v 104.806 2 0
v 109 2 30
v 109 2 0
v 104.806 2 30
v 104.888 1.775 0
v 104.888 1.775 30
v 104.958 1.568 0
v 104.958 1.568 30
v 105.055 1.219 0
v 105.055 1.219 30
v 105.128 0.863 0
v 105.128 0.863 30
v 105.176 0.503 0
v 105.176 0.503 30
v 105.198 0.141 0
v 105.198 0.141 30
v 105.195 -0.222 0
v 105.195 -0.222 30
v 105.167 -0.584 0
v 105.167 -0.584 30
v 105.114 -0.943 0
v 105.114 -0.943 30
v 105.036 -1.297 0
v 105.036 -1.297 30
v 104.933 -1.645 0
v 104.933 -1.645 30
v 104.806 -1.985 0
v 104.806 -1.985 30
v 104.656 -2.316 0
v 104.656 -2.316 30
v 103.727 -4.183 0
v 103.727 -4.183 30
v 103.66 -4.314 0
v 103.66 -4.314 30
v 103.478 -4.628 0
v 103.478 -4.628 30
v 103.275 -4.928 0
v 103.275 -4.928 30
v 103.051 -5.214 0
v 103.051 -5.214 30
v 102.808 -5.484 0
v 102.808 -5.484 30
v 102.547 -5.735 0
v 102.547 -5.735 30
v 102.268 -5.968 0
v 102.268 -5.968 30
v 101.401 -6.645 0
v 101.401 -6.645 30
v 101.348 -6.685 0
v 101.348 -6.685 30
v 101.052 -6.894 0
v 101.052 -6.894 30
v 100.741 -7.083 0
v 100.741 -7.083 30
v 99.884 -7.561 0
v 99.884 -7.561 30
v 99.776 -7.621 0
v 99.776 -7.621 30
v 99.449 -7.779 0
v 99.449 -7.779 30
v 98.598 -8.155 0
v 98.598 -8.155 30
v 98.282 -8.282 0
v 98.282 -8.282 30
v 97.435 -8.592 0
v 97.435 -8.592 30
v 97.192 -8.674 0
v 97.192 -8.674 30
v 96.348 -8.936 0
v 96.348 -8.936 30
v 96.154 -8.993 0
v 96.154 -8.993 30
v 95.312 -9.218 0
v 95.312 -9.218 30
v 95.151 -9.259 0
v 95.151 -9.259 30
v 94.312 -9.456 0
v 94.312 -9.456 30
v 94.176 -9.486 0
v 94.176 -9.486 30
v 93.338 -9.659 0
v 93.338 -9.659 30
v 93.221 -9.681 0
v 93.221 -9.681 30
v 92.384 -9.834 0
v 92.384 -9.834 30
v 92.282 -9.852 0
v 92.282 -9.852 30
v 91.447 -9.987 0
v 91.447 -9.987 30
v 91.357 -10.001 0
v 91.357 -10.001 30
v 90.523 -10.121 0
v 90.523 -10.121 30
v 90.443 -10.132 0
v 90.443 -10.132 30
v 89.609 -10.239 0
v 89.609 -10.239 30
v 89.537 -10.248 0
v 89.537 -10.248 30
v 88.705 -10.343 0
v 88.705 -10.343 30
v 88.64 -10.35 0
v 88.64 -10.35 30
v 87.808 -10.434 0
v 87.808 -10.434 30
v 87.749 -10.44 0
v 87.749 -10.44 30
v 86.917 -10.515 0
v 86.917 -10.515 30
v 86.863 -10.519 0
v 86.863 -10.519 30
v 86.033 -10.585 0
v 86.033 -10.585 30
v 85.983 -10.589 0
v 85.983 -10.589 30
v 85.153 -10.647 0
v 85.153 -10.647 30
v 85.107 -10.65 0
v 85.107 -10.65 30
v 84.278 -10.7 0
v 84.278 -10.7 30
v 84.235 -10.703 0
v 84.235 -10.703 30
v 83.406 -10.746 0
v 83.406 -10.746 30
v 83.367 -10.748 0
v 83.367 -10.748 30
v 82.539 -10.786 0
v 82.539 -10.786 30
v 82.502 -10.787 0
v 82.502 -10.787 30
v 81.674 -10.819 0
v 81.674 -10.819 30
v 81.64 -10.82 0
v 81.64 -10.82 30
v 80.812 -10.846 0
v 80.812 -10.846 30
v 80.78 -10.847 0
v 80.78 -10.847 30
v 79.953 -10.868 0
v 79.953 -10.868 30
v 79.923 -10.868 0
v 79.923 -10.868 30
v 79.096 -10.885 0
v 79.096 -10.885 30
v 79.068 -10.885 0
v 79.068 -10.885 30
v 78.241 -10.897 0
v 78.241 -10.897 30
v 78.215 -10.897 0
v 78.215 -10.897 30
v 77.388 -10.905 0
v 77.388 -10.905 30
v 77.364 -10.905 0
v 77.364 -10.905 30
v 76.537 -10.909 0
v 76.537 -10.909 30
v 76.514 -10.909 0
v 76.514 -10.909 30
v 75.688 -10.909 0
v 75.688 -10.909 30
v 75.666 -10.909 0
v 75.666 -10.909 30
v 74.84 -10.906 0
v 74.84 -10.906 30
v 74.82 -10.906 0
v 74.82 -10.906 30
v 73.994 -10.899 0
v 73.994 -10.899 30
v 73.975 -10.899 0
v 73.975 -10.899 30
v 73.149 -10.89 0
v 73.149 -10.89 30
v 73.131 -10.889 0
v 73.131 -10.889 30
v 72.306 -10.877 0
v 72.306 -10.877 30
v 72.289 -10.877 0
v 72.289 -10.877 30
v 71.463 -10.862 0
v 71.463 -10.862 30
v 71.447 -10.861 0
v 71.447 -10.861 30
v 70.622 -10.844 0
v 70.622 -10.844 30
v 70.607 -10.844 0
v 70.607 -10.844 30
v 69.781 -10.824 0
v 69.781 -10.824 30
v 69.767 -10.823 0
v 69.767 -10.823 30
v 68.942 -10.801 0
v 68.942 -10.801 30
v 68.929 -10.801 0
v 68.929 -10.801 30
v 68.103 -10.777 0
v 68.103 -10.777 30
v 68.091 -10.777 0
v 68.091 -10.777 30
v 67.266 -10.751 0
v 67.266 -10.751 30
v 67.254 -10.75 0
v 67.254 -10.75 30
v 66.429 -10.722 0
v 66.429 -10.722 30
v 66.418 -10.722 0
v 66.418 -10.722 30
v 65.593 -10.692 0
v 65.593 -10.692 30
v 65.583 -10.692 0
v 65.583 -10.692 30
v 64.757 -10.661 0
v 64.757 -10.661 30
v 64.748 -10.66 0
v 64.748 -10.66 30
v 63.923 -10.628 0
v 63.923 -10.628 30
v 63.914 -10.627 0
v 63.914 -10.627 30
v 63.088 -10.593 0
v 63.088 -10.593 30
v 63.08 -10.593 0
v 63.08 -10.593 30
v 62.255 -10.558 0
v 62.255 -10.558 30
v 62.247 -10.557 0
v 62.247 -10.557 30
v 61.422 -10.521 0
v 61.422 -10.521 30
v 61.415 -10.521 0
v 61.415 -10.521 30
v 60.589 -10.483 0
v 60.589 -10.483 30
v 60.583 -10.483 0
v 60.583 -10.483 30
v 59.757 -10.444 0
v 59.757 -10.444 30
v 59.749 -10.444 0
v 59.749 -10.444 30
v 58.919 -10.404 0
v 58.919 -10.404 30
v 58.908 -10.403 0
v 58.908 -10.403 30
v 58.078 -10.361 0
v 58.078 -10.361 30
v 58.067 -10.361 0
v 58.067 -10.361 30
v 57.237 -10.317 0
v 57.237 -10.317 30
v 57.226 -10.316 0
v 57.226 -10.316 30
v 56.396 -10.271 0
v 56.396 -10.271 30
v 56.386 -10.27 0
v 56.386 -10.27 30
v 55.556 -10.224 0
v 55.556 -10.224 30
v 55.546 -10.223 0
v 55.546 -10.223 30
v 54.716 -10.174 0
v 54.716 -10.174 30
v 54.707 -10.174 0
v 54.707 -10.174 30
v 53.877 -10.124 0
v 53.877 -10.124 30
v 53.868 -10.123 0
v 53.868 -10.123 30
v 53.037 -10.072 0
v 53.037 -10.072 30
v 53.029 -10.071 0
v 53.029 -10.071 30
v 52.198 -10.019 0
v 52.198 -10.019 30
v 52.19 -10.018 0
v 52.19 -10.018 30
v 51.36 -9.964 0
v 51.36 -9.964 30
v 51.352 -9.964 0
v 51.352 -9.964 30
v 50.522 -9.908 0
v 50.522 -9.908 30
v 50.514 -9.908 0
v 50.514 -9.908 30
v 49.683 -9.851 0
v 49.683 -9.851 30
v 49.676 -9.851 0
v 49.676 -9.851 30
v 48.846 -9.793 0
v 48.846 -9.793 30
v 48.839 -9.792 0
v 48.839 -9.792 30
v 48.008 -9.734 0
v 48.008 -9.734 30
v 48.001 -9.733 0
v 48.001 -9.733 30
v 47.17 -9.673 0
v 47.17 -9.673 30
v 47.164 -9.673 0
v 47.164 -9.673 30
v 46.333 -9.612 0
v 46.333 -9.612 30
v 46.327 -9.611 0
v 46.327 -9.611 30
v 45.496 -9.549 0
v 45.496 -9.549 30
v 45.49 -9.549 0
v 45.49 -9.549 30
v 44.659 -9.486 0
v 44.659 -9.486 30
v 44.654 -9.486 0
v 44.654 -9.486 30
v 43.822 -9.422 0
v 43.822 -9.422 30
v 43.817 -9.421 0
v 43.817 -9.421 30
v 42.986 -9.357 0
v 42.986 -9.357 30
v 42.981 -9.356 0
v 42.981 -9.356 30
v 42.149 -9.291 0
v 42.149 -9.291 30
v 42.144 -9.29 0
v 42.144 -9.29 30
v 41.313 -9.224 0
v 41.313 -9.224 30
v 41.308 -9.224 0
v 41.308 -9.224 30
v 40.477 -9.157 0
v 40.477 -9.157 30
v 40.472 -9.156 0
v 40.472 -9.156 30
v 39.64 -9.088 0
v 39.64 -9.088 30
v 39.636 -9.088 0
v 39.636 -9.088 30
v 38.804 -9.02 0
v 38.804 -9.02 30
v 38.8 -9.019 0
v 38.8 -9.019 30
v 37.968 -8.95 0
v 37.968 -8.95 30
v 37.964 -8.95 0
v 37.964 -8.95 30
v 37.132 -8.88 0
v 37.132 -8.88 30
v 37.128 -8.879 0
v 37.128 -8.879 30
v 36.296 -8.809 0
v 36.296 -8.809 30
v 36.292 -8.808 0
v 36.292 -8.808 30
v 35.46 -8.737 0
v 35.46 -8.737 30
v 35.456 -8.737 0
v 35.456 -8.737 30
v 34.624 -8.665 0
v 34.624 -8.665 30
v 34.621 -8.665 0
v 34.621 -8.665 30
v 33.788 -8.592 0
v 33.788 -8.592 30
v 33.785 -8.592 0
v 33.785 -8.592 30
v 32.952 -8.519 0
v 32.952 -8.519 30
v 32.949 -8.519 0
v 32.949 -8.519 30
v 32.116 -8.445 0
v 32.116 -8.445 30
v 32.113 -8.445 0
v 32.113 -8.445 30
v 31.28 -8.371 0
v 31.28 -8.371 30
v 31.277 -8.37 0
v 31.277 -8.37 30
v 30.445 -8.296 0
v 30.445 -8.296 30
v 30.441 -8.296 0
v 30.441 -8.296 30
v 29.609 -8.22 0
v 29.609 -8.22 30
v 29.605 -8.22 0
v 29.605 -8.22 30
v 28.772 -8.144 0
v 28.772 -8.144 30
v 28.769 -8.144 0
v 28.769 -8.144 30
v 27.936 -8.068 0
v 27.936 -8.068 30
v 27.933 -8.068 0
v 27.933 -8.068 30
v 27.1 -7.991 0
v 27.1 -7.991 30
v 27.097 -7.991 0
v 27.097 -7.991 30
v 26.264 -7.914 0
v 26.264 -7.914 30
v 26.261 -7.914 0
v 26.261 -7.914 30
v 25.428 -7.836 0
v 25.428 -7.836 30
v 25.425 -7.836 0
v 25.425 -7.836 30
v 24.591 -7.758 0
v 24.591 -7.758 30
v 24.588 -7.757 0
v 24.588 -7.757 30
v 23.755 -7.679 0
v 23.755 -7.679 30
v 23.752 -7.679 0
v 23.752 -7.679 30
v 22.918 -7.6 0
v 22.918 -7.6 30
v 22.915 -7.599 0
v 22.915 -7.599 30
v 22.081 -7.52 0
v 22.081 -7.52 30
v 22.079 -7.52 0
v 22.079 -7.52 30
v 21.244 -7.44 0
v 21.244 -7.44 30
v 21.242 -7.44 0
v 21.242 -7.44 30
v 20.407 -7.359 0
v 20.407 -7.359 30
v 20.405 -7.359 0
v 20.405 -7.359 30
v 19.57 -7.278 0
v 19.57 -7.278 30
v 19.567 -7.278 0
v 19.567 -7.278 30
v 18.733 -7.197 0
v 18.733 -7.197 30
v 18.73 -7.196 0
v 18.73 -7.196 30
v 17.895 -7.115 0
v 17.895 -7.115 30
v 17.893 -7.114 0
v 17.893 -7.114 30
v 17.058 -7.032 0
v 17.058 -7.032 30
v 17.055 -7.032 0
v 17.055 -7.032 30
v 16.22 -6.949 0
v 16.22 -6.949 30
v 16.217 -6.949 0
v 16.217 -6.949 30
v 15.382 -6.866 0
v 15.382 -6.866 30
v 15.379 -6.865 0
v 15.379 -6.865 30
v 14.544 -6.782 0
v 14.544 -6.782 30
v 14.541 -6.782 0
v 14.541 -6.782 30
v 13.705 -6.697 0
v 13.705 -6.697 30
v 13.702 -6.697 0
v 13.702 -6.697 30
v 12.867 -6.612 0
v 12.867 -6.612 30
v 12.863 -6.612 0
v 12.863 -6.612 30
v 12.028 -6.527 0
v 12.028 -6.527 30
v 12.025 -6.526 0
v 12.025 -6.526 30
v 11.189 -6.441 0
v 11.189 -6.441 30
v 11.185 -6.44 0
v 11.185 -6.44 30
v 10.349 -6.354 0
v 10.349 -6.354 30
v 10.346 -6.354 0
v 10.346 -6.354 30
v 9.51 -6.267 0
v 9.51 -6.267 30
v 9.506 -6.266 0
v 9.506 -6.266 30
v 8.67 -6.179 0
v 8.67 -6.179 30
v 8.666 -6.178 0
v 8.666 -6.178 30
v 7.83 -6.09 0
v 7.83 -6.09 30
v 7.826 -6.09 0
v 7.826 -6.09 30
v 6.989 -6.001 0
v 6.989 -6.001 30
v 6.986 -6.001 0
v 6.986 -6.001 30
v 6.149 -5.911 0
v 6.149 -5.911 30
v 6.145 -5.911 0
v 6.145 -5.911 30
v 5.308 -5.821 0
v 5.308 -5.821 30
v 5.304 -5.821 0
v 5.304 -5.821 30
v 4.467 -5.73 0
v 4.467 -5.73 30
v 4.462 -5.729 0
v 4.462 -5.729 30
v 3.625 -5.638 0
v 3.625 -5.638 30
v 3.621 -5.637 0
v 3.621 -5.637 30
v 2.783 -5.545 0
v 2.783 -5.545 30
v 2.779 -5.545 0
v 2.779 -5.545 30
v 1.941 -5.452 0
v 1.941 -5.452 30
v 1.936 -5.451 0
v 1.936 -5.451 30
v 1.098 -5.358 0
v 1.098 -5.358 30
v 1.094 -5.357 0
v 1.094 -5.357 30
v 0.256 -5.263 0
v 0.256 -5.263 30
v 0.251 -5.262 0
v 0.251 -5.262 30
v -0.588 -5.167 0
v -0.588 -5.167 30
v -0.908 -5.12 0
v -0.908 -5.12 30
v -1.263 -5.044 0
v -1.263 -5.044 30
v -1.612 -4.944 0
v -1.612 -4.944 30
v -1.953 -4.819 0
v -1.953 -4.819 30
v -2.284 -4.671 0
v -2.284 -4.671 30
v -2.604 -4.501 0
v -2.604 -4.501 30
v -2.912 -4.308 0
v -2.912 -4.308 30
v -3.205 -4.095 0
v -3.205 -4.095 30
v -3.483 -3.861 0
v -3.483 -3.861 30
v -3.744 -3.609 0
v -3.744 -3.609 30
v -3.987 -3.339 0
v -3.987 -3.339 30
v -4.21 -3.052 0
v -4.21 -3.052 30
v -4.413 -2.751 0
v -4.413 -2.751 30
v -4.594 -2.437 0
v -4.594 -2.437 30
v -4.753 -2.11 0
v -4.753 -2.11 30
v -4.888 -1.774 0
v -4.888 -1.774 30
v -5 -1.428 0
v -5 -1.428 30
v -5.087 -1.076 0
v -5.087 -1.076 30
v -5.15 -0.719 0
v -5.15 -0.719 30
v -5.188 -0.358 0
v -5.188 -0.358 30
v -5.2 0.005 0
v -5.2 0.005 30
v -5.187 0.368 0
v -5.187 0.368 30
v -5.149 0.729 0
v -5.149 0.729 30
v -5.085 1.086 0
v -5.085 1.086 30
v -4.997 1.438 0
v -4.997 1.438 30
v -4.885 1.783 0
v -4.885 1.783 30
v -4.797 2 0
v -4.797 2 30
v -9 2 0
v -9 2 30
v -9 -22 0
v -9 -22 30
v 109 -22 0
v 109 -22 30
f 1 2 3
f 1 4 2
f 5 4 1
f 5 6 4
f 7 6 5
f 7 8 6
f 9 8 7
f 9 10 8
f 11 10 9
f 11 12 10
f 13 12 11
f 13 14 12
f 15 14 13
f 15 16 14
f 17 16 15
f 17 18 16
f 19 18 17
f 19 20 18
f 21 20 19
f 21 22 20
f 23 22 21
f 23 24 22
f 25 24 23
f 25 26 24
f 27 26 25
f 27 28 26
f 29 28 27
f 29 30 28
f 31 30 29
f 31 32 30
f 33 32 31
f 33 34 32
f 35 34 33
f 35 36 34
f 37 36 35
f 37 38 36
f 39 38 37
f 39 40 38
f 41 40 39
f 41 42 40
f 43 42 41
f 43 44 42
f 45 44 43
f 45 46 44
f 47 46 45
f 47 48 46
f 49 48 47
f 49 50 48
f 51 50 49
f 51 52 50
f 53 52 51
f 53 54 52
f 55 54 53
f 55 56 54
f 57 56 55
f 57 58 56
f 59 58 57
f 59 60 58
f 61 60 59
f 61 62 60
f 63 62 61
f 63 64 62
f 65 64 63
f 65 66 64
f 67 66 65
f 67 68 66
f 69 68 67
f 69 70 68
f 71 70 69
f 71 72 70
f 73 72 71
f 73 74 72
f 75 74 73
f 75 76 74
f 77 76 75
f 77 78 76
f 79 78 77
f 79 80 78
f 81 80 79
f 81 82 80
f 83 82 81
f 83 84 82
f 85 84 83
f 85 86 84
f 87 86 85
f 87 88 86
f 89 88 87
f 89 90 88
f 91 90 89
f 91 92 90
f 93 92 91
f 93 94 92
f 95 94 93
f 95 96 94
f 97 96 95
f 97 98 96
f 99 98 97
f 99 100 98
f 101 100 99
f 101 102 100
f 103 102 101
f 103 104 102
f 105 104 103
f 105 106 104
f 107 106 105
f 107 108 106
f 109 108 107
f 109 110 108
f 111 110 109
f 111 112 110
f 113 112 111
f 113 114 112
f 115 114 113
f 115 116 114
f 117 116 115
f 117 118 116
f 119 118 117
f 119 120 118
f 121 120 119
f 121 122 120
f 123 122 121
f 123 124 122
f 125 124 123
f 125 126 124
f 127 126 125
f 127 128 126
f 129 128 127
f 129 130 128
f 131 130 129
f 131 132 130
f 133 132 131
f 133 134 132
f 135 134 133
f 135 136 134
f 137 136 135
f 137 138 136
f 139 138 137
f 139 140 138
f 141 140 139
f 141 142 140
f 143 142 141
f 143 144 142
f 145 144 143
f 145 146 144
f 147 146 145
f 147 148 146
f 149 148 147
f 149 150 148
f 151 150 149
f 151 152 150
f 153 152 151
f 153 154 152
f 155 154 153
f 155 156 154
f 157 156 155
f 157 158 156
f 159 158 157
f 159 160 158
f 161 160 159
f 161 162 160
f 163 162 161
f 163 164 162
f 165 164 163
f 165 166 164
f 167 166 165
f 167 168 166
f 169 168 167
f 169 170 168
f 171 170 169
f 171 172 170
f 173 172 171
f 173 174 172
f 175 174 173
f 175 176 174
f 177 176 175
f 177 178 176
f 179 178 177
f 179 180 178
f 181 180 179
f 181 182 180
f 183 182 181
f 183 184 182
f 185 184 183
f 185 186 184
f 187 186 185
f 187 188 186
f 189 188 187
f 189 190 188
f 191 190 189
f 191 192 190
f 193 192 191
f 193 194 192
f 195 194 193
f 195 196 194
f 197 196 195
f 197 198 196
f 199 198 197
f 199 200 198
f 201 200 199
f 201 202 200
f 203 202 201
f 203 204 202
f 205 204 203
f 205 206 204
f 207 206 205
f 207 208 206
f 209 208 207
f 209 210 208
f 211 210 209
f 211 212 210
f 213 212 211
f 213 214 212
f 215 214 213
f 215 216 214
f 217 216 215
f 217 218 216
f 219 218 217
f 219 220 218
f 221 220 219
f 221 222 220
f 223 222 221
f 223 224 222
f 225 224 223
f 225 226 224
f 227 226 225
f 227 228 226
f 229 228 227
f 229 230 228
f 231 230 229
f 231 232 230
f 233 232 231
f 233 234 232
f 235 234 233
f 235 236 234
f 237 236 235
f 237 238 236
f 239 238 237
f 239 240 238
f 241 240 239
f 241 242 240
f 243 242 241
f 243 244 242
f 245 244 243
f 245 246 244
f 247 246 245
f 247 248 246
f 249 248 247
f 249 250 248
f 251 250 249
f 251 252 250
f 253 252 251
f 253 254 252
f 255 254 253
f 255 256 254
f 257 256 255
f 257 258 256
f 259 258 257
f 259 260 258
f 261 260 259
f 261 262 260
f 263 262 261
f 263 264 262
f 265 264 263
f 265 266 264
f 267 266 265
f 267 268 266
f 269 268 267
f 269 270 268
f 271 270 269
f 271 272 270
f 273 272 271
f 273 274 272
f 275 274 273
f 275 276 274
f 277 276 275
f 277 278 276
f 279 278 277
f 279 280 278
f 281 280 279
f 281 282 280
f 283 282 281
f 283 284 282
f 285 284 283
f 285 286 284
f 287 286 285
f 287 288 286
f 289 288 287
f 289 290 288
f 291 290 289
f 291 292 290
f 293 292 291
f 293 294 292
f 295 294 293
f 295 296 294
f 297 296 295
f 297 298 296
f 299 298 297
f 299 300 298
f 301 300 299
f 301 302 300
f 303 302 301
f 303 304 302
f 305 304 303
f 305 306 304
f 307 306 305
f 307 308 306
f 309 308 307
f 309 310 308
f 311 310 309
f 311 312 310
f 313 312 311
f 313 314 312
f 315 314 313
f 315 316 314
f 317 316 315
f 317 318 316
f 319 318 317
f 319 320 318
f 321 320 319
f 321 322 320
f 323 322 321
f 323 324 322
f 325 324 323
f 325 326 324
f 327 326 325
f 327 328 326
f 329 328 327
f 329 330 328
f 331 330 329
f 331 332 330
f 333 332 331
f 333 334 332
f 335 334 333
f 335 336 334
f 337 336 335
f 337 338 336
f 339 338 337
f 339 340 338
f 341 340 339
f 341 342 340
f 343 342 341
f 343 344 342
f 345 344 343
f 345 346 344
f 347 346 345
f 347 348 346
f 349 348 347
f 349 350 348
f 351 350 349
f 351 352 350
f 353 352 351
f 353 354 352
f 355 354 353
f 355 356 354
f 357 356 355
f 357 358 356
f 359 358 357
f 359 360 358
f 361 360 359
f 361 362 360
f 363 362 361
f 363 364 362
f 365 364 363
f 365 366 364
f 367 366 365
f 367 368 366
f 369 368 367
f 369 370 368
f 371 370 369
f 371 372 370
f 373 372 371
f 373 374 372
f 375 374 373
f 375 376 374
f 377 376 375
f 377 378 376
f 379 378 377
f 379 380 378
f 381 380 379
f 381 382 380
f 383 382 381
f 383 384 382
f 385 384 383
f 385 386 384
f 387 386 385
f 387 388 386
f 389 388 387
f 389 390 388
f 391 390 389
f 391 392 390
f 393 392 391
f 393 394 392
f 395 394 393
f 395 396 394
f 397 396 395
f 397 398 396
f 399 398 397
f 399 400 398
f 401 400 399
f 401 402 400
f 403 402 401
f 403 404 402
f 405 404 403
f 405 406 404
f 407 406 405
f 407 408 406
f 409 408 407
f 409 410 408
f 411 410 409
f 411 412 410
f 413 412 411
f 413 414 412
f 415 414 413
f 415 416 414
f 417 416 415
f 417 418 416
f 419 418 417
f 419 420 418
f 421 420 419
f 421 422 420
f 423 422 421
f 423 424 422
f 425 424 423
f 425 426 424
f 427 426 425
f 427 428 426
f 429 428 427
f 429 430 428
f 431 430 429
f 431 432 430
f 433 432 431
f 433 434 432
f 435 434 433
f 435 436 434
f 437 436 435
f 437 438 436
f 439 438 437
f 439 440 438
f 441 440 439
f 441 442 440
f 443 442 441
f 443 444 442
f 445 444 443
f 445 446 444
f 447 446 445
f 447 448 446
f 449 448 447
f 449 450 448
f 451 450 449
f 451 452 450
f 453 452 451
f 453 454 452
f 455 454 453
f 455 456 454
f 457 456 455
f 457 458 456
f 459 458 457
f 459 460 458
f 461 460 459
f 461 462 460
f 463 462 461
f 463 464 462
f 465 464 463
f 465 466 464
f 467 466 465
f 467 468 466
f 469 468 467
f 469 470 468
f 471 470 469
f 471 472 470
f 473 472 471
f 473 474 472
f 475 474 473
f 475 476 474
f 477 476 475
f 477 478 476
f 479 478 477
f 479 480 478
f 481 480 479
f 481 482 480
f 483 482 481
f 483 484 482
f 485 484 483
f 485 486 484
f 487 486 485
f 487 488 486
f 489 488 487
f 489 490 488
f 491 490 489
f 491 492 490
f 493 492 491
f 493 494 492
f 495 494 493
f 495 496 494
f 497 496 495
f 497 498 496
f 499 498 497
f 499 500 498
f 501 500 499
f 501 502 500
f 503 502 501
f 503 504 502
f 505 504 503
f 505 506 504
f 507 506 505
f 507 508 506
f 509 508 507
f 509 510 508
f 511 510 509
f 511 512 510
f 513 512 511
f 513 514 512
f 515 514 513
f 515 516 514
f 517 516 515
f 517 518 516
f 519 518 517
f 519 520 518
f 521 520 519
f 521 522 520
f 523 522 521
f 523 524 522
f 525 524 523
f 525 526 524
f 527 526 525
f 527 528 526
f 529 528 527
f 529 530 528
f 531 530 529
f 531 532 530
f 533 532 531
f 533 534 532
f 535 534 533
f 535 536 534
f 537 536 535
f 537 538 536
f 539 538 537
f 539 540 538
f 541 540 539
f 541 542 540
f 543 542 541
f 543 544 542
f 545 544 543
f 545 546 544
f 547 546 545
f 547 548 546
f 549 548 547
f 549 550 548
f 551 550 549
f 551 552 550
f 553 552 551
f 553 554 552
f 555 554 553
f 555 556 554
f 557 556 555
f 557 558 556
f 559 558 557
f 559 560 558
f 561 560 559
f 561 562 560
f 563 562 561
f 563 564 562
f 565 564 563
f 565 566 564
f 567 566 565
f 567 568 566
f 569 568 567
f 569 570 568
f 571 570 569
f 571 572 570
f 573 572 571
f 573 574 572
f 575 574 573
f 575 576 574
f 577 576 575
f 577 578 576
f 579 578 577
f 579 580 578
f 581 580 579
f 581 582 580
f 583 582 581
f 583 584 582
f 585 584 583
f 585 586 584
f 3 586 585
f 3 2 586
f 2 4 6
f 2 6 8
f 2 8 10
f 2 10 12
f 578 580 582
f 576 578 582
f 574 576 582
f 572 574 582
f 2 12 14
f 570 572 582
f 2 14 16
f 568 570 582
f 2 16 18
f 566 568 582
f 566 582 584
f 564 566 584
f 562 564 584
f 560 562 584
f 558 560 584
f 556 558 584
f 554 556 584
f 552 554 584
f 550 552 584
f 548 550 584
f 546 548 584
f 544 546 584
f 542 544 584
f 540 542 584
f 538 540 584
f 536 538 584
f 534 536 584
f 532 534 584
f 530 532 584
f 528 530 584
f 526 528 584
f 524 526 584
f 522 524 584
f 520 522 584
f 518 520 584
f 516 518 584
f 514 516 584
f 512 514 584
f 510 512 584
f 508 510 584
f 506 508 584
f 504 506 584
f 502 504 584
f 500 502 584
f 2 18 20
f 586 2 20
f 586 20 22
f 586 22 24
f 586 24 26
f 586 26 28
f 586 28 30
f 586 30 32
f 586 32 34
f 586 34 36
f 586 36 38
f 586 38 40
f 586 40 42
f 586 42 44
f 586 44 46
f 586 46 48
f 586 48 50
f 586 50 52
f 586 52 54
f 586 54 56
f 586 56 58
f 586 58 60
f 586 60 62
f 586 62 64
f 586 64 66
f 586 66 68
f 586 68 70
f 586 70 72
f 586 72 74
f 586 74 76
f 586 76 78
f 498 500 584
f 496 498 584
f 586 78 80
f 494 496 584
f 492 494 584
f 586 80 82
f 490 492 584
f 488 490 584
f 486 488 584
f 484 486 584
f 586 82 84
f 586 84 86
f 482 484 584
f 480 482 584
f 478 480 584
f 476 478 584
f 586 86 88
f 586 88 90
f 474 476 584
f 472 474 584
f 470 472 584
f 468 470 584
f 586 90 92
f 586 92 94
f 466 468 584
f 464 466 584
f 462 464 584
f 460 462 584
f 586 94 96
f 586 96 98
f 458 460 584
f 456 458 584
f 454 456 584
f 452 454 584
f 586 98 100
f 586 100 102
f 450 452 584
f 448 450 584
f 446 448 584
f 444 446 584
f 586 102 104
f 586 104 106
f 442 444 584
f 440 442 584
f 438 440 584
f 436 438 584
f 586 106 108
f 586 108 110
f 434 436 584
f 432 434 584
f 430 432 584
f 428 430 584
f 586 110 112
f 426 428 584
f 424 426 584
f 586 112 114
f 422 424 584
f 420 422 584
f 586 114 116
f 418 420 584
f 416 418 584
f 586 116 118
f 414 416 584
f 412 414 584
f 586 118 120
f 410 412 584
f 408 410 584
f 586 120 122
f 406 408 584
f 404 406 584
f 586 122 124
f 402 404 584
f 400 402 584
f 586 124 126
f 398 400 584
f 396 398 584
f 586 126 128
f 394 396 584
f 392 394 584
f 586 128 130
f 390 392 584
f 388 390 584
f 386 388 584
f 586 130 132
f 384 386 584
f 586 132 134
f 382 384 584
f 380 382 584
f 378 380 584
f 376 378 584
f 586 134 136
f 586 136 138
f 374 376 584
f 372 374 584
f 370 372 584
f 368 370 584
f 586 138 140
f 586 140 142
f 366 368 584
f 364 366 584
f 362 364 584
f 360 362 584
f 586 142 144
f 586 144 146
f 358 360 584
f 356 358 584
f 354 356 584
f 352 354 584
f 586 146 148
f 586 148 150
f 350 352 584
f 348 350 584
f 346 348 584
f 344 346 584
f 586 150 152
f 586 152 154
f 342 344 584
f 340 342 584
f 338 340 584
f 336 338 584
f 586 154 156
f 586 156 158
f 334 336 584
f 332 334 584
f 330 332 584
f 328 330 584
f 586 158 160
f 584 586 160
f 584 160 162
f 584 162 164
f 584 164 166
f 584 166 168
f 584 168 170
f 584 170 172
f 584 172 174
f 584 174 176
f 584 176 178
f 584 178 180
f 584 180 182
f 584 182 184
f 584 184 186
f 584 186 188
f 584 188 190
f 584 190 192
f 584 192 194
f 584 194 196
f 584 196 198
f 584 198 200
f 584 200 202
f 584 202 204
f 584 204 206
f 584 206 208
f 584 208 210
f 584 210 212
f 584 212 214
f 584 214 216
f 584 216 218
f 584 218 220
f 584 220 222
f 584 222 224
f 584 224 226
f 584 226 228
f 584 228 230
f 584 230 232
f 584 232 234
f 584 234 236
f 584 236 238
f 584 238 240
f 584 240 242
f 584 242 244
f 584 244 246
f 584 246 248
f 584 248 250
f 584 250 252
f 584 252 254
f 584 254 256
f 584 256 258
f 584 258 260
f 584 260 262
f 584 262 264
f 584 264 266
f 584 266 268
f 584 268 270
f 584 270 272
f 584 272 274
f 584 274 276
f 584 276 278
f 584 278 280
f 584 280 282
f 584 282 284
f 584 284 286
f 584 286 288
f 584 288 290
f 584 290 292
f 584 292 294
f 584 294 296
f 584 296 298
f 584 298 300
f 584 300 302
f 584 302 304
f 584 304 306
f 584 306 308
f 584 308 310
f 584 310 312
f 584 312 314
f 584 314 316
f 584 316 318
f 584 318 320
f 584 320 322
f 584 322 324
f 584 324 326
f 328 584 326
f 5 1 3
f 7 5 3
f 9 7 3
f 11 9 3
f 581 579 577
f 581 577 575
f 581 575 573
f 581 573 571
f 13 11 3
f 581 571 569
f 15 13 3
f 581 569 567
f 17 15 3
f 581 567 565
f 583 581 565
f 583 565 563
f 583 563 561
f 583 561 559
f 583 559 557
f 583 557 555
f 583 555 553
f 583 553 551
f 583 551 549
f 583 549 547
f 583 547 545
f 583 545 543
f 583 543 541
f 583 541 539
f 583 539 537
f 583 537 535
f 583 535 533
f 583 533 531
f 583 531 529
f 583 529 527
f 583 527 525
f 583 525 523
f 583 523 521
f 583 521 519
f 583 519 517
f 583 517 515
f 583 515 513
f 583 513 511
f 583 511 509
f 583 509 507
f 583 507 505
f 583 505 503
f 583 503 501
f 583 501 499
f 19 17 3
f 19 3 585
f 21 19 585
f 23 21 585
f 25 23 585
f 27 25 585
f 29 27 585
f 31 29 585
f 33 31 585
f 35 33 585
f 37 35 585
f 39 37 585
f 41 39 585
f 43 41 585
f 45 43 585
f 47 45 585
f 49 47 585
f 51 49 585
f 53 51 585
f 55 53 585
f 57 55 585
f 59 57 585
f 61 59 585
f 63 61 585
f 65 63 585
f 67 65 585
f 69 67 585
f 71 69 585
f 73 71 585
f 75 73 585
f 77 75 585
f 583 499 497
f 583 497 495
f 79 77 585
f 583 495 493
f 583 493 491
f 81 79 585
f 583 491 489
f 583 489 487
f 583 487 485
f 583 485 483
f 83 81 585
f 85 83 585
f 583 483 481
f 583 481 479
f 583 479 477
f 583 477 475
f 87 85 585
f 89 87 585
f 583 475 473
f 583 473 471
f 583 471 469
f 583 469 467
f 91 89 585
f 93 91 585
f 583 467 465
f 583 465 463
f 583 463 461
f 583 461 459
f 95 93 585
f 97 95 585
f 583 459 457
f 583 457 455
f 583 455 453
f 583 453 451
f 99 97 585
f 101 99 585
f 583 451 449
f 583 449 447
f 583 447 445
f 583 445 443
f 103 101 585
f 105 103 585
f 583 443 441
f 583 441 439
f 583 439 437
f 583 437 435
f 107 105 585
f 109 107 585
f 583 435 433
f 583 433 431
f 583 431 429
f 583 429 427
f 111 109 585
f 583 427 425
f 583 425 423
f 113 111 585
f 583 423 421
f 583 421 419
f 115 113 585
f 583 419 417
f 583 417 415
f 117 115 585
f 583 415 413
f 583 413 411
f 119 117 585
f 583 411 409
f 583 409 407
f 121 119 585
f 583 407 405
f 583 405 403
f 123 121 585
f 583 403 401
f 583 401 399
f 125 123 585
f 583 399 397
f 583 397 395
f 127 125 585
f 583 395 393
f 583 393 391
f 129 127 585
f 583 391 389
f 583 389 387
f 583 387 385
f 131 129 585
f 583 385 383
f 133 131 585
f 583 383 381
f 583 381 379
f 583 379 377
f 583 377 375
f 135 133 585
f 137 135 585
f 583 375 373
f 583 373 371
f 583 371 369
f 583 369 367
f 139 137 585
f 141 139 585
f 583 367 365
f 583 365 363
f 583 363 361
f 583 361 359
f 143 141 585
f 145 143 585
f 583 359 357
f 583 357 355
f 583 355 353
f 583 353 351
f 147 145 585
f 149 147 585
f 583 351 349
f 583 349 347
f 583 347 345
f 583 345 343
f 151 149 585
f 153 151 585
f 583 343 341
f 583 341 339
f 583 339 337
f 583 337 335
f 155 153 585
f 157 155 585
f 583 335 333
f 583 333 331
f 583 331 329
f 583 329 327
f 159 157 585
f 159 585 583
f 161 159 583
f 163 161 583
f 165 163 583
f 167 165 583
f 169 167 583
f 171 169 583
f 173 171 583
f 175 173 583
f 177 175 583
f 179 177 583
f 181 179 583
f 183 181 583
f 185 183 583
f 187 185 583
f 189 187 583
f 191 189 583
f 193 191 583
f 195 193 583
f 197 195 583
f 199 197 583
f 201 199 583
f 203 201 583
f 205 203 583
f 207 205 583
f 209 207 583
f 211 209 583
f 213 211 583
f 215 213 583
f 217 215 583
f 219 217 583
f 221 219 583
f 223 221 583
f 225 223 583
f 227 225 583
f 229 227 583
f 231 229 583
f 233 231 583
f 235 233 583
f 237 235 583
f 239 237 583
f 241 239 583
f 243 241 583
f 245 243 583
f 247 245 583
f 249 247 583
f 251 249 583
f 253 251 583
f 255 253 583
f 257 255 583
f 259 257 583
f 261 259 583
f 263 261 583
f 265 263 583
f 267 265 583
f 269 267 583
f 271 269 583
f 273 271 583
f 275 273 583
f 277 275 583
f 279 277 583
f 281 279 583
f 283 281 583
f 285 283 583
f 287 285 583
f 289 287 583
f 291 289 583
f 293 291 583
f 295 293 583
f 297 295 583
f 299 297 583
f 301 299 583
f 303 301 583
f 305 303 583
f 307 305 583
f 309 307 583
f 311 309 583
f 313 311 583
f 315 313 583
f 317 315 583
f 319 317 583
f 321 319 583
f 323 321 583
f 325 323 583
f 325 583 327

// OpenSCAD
// file: design_params.scad
// ============================================================
// STARLING SHARED DESIGN PARAMETERS — single source of truth for
// every dimension two parts must agree on.
//
// Consumers:
//   - every part in cad/ does        include <design_params.scad>
//   - parts in cad/calibration/ do   include <../design_params.scad>
//   - scripts/check_params.py FAILS the build if any of these names
//     is re-declared anywhere else — change values HERE only.
//
// Keep this file to simple `name = value;` lines so the tooling can
// parse it. One-off experiments: `openscad -D name=value` beats the
// include, no need to edit this file.
// ============================================================

// --- The paper tube (bought part, consumable) ---
// BOTH diameters are measured, not derived from a nominal wall thickness:
// paper wall varies batch to batch, so the OD does not predict the bore.
// Print the two calibration gauges with every new batch of tube, and type
// the number engraved on the best-fitting variant in here.
tube_od     = 52.95;   // sleeves slide OVER this — cad/calibration/tube_fit_ring.scad
tube_id     = 46.95;   // plugs slide INTO this  — cad/calibration/tube_bore_gauge.scad
tube_length = 540;

// --- Printed-part fits ---
sleeve_clearance = 0;   // added to every sleeve bore diameter; tune via the fit ring
plug_clearance   = 0;   // subtracted from every plug OD; tune via the bore gauge
fit_tol          = 0.2; // clearance for printed slots/pockets
sleeve_wall      = 3;   // wall thickness of printed sleeves

// --- Wing spar chain (rib holes = adapter sockets = carbon rods) ---
spar_rod_d    = 6;     // carbon rod diameter
spar_hole_d   = 6.2;   // printed hole for that rod
spar_spacing  = 20;    // chordwise distance between the two spars
spar_y_offset = 1.5;   // spar line sits this far above the rib chord line
spar_x_pos    = 0.4;   // rear spar chord fraction (front spar sits
                       // spar_spacing further forward, at 20% on a 100 chord)
spar_socket_lift = 1;  // adapter socket floor sits this far above the sleeve
                       // bore — rods must never reach the paper tube or they
                       // jam against it and block the CG slide

// --- Wing geometry ---
rib_chord     = 100;
naca_code     = 2415;  // cambered lifting section
rib_thickness = 2;
skin_thickness = 5;    // foam-board skin (bought sheet); the skin cradle
                       // jig offsets the rib profile by this
servo_rib_thickness = 4; // the servo rib prints thicker — it reacts the whole
                         // servo/linkage load until the skin is glued on
tip_rib_flat  = 3;     // full-profile band at the tip rib's inboard face;
                       // the foam skin's outboard edge lands on it
tip_spar_socket = 6;   // blind spar-socket depth in the tip rib; the spar
                       // rods are cut so they END inside these sockets, so
                       // the assembly's spar length derives from this too
aileron_te_gap  = 2;   // extra TE crop beyond the hinge line so the aileron
                       // LE can swing under the taped top hinge (see
                       // cad/wing_rib.scad for the geometry rationale)

// --- Wing adapter <-> root rib interface ---
wing_tab_thickness = 11; // adapter tab (socket carrier; ribs sit outboard of it)
wing_tab_span      = 15; // how far the tab reaches out from the sleeve
adapter_length     = 40; // sleeve length = tab chord extent

// --- Wing span layout (per panel, X from the fuselage centerline) ---
// Span is a first-class tunable: resize the wing per mission and rod stock
// by editing these literals, then satisfy scripts/wing_check.py, which
// enforces the relationships between them (spar fit window, station order,
// arm-slot clearance) and prints the spar cavity so rods can be cut to
// match whatever stock is on hand.
rib_stations         = [47, 120, 200]; // full-chord standard ribs
wing_servo_station   = 280;  // servo rib REPLACES the row rib here
aileron_rib_stations = [360];// TE-cropped ribs inside the aileron span
aileron_root_station = 283;  // = wing_servo_station + servo_rib_thickness/2
                             //   + 1 mm gap (wing_check.py enforces this)
aileron_span         = 120;
tip_station          = 440;  // tip rib inboard face — THE span knob
spar_rod_len         = 417;  // carbon rod length per spar per side (cut from
                             // stock; one 500 mm kite rod covers this with a
                             // single cut) — wing_check.py verifies the fit

// --- Stations along the tube (assembly; wing slides for CG trim) ---
wing_station       = 300; // wing adapter position, measured from the motor face
tail_tube_stop     = 54;  // tube bottoms out here inside the tail sleeve (rim top)
nose_sleeve_length = 20;  // how far the nose cone slides over the tube

// --- Servos (9 g / SG90 class) ---
servo_body   = [23, 12.2]; // [length, width]
servo_flange = [32, 12.2];
servo_height = 22;         // body height incl. shaft boss, without horn

// --- Control system (internal servos, wire pushrods through wall slots) ---
ctrl_chord       = 22;   // control-surface chord (elevator / rudder / aileron)
ctrl_thickness   = 4;    // control-surface root thickness = fin thickness
hinge_groove_w   = 1.6;  // groove for the hinge strip/tape, both fin TE and surface LE
hinge_groove_d   = 2.5;
pushrod_d        = 1.2;  // piano-wire pushrod, attached at the TIP of both arms
pushrod_slot_w   = 2.5;  // wall slot the pushrod moves in
pushrod_slot_len = 18;   // slot channel length along the rod (see throw_check.py)
servo_horn_r     = 10;   // full arm length — the wire connects at the far end
servo_travel_deg = 45;   // used one-sided travel; the arm can do ~±90 (180 total)
                         // but the linkage stays near-linear only within ±45
ctrl_horn_r      = 10;   // control-surface horn = servo horn -> 1:1 linkage
aileron_arm_plane = 9.2; // the aileron servo's arm plane sits this far
                         // outboard of the servo-rib station (flange seat +
                         // shaft boss + horn plate)
aileron_arm_x_te  = 39;  // arm-tip chord position, measured from the TE —
                         // sets where the skin's arm slot goes (gated by
                         // wing_check.py against the spar and aileron notch)

// Tail linkage geometry. Three 22 mm-wide servos cannot share one height
// inside the Ø53 bore (corner collisions), so they are STAGGERED in Z:
// the two elevator servos sit HIGH (opposite sides, they coexist), the
// rudder servo sits LOW. Each wire attaches at the arm tip and exits
// through an angled wall slot raked toward its surface horn.
tail_servo_z           = 33; // bottom (shaft end) of the ELEVATOR servo bodies
tail_slot_angle        = 42; // elevator rod angle off the fuselage axis
tail_rudder_z          = 9;  // bottom (shaft end) of the RUDDER servo body
tail_rudder_slot_angle = 56; // rudder rod angle off the fuselage axis

// --- Motor (22xx class, rear pusher) ---
motor_shaft_hole_d = 10;
motor_screw_hole_d = 4;
motor_pattern_x    = 16;  // screw pattern
motor_pattern_y    = 19;
// main file
// SKIN CRADLE — assembly tooling, not part of the airframe. A saddle
// matching the wing's LOWER surface (rib profile offset outward by the
// foam skin) so a panel sits level and does not rock while the top skin
// is glued, the aileron is hinged, or the servo is rigged. Print two and
// space them along the span, one near the root, one near the aileron.
//
// The saddle also fits the bare rib frame before skinning, just slightly
// loose (the skin offset becomes clearance). Short prongs at the TE and
// LE cup the section so the wing cannot slide chordwise.
//
// Print lying on a side face; the profile stands vertical and needs no
// support.

include <design_params.scad>
use <wing_rib.scad>

cradle_width = 30;   // spanwise
cradle_base  = 22;   // material under the lowest point of the section
cradle_lip   = 2;    // how far the TE/LE prongs rise above the chord line
cradle_wall  = 9;    // block beyond the TE and LE points

$fn = 90;

linear_extrude(height = cradle_width)
    difference() {
        translate([-cradle_wall, -cradle_base])
            square([rib_chord + 2 * cradle_wall, cradle_base + cradle_lip]);
        offset(r = skin_thickness + fit_tol)
            rib_profile();
    }
